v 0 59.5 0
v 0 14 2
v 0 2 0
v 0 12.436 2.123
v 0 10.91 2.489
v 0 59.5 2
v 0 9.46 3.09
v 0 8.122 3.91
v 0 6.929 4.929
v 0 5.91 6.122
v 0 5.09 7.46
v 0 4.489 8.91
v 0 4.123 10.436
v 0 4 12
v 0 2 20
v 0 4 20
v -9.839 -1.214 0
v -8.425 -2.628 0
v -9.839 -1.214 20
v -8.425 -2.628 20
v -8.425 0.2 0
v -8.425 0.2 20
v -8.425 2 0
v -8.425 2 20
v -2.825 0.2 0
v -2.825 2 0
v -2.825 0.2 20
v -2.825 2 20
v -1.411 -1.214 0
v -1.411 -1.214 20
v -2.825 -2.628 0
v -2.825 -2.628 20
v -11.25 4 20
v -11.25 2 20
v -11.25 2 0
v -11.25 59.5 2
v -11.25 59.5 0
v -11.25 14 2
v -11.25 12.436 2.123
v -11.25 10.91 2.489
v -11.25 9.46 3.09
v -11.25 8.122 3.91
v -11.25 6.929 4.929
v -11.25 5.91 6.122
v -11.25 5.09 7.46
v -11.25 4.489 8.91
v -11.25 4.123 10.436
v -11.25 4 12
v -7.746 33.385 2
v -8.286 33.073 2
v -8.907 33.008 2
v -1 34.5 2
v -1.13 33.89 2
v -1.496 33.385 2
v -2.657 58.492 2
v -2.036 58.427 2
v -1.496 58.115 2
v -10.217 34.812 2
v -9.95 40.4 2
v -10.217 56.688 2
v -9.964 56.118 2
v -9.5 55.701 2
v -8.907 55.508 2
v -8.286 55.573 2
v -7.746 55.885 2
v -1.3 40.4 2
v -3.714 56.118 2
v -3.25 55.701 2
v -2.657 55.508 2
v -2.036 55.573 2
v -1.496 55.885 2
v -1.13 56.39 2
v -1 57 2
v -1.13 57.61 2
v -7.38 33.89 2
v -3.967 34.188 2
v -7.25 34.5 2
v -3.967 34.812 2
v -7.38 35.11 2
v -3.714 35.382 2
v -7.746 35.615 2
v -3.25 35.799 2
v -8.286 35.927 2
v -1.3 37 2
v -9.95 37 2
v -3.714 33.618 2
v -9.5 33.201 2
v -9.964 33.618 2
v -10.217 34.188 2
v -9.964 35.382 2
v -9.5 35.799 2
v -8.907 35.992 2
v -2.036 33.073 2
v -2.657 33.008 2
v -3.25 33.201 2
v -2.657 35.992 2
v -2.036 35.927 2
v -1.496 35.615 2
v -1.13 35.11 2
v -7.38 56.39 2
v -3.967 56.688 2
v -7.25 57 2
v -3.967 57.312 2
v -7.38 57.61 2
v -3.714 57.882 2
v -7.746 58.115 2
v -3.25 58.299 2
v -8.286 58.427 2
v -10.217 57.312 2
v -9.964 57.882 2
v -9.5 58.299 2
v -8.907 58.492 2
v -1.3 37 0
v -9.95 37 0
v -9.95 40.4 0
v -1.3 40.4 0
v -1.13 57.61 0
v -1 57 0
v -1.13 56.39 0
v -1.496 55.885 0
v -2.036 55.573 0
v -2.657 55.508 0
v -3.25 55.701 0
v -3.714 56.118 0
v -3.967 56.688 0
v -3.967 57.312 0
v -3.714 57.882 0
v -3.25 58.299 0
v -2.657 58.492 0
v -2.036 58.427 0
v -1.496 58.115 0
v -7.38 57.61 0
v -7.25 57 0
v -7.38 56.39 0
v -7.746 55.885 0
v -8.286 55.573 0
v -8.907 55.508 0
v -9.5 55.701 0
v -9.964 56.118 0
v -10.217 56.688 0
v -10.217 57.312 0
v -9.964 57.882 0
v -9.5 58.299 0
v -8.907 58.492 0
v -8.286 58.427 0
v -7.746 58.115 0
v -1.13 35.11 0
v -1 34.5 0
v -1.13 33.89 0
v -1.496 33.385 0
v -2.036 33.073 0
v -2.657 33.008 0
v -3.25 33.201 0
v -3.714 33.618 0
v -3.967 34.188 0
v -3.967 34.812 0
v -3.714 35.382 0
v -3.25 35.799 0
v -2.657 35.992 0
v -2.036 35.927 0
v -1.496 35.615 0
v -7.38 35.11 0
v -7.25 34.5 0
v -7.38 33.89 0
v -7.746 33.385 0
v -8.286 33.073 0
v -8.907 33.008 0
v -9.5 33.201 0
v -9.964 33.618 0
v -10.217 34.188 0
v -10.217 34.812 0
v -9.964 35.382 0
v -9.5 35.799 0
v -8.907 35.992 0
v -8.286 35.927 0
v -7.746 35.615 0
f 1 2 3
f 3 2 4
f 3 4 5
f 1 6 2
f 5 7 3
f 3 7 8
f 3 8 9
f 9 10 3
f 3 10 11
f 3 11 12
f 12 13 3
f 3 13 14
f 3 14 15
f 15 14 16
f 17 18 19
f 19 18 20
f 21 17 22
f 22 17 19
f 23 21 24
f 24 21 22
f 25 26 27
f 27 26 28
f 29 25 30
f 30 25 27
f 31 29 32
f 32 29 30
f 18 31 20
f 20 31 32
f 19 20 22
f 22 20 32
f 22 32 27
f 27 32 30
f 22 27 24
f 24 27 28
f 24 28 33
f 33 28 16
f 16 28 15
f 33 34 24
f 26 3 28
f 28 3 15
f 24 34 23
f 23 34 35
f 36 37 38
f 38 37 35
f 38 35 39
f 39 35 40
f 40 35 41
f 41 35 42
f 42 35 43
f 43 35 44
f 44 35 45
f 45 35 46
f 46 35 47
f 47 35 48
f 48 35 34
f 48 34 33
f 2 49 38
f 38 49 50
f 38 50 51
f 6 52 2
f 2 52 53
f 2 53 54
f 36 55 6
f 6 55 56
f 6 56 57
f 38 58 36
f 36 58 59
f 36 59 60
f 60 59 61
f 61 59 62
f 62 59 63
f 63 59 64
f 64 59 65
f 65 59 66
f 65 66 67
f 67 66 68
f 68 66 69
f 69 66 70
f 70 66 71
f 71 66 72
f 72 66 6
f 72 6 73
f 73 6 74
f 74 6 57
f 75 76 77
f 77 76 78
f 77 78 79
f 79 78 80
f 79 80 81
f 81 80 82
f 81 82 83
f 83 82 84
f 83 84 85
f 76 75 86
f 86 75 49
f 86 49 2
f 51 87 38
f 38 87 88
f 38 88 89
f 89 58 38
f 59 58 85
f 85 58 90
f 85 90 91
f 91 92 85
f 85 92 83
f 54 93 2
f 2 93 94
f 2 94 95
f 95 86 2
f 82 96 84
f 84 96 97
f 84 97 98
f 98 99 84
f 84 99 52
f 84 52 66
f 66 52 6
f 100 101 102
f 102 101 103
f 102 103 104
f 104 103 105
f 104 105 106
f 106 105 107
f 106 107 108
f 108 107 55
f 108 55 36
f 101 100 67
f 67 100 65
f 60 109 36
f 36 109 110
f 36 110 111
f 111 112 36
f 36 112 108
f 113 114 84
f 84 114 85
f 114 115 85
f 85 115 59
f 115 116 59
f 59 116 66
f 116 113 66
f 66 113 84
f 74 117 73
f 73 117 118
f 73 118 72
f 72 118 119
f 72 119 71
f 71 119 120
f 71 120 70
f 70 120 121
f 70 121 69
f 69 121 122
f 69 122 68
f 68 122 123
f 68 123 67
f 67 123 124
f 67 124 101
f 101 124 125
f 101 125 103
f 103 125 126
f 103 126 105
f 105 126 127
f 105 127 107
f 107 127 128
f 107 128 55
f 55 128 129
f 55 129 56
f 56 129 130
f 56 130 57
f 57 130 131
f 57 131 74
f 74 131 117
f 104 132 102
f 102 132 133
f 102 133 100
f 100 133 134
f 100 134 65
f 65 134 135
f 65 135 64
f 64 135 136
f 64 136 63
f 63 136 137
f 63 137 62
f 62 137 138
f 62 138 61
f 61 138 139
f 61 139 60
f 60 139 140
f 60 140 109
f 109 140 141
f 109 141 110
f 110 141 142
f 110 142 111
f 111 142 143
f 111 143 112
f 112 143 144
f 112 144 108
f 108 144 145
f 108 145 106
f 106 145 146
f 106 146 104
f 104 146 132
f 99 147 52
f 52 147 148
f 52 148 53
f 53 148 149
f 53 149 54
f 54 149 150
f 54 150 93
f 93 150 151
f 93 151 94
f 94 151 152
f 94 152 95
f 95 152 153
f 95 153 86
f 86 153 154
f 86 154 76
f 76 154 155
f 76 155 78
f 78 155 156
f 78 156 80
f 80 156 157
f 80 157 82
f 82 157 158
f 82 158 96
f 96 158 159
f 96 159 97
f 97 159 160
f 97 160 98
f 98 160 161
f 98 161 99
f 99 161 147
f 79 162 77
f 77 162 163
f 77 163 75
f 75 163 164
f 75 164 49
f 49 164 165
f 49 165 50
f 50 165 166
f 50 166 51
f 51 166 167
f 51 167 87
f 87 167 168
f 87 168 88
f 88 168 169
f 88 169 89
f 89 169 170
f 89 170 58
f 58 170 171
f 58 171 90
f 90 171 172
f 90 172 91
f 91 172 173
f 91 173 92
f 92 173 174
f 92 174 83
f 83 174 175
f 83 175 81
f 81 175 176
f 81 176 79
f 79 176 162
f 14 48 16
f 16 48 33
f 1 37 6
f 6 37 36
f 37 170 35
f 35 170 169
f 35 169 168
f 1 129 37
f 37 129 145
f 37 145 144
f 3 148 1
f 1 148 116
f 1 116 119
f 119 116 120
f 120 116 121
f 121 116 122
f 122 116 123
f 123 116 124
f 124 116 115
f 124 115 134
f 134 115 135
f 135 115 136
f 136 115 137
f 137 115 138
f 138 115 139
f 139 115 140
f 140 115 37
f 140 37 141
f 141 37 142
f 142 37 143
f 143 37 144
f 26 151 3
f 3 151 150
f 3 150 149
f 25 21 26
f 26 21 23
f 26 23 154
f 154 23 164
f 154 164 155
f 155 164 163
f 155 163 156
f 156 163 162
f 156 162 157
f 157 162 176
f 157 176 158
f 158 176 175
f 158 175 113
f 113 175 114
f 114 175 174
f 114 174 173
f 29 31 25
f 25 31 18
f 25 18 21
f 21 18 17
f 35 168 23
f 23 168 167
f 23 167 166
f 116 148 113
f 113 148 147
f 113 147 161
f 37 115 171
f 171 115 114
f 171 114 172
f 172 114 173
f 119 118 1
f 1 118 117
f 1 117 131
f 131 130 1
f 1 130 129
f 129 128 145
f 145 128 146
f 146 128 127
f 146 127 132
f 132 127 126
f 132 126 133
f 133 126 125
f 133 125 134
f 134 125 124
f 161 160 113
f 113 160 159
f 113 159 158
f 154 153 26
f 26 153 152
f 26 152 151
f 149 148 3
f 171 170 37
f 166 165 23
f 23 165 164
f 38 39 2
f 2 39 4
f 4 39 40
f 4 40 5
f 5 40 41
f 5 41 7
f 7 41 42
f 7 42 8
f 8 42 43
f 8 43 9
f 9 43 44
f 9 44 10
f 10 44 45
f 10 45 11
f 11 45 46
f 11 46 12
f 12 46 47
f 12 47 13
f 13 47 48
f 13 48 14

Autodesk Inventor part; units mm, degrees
ref_plane "YZ Plane" through (0, 0, 0) normal (1, 0, 0) x (0, 1, 0)
ref_plane "XZ Plane" through (0, 0, 0) normal (0, 1, 0) x (-1, 0, 0)
ref_plane "XY Plane" through (0, 0, 0) normal (0, 0, 1) x (1, 0, 0)
sketch "Sketch1" plane through (0, 0, 0) normal (0, 0, 1) x (1, 0, 0)
  line L0 (-11.25, 59.5) -> (-8.75, 59.5) construction
  line L1 (-8.75, 59.5) -> (-8.75, 57) construction
  line L2 (-8.75, 57) -> (-11.25, 57) construction
  line L3 (-11.25, 57) -> (-11.25, 59.5) construction
  line L4 (0, 59.5) -> (-11.25, 59.5) construction
  circle A0 centre (-8.75, 57) radius 1.5
  line L5 (-8.75, 57) -> (-2.5, 57) construction
  line L6 (-2.5, 57) -> (-2.5, 34.5) construction
  line L7 (-2.5, 34.5) -> (-8.75, 34.5) construction
  line L8 (-8.75, 34.5) -> (-8.75, 57) construction
  circle A1 centre (-8.75, 34.5) radius 1.5
  circle A2 centre (-2.5, 34.5) radius 1.5
  circle A3 centre (-2.5, 57) radius 1.5
  line L9 (-11.25, 59.5) -> (0, 59.5)
  line L10 (0, 59.5) -> (0, 2)
  line L11 (0, 2) -> (-11.25, 2)
  line L12 (-11.25, 2) -> (-11.25, 59.5)
  line L13 (-9.95, 40.4) -> (0, 40.4) construction
  line L14 (-1.3, 40.4) -> (0, 40.4) construction
  line L15 (-9.95, 37) -> (0, 37) construction
  line L16 (-9.95, 40.4) -> (-1.3, 40.4)
  line L17 (-1.3, 40.4) -> (-1.3, 37)
  line L18 (-1.3, 37) -> (-9.95, 37)
  line L19 (-9.95, 37) -> (-9.95, 40.4)
  line L20 (0, 59.5) -> (-1.3, 59.5) construction
  line L21 (-1.3, 59.5) -> (-1.3, 40.4) construction
  line L22 (-1.3, 40.4) -> (0, 40.4) construction
  line L23 (0, 40.4) -> (0, 59.5) construction
  line L24 (0, 59.5) -> (-9.95, 59.5) construction
  line L25 (-9.95, 59.5) -> (-9.95, 37) construction
  line L26 (-9.95, 37) -> (0, 37) construction
  line L27 (0, 37) -> (0, 59.5) construction
  point P0 (0, 0)
  dimension "d0" = 2.5
  dimension "d1" = 2.5
  dimension "d2" = 3
  dimension "d3" = 6.25
  dimension "d4" = 22.5
  dimension "d5" = 3
  dimension "d6" = 3
  dimension "d7" = 3
  dimension "d8" = 11.25
  dimension "d9" = 57.5
  dimension "d10" = 9.95
  dimension "d11" = 1.3
extrude "Extrusion1" add sketch "Sketch1" along normal blind 2
sketch "Sketch2" plane through (0, 2, 0) normal (1, 0, 0) x (0, 0, -1)
  line L0 (0, 0) -> (0, 57.5) construction
  line L1 (0, 0) -> (18, 0) construction
  line L2 (18, 0) -> (18, -30) construction
  line L3 (18, 0) -> (48, 0) construction
  line L4 (18, -30) -> (18, -17) construction
  point P0 (0, -2)
  dimension "d14" = 18
  dimension "d15" = 30
  dimension "d16" = 90
  dimension "d17" = 13
sketch "Sketch7" plane through (0, 0, 0) normal (0, 0, -1) x (-1, 0, 0)
  line L0 (1.4108, -1.2142) -> (2.825, -2.6284)
  line L1 (2.825, 0.2) -> (1.4108, -1.2142)
  line L2 (2.825, 0.2) -> (2.825, 2)
  line L3 (5.625, 0.2) -> (5.625, 2) construction
  line L4 (2.825, -2.6284) -> (5.625, -2.6284)
  line L5 (5.625, 2) -> (5.625, -3) construction
  line L6 (8.425, -2.6284) -> (5.625, -2.6284)
  line L7 (8.425, 0.2) -> (5.625, 0.2) construction
  line L8 (8.425, 2) -> (8.425, 0.2) construction
  line L9 (8.425, 2) -> (8.425, 0.2)
  line L10 (8.425, 0.2) -> (9.8392, -1.2142)
  line L11 (9.8392, -1.2142) -> (8.425, -2.6284)
  line L12 (8.425, 0.2) -> (10.425, 0.2) construction
  line L13 (9.95, 37) -> (1.3, 37) projected
  line L14 (1.3, 37) -> (1.3, 40.4) projected
  line L15 (1.3, 40.4) -> (9.95, 40.4) projected
  line L16 (9.95, 40.4) -> (9.95, 37) projected
  circle A0 centre (2.5, 57) radius 1.5 projected
  circle A1 centre (8.75, 57) radius 1.5 projected
  circle A2 centre (2.5, 34.5) radius 1.5 projected
  circle A3 centre (8.75, 34.5) radius 1.5 projected
  line L17 (11.25, 59.5) -> (0, 59.5) projected
  line L18 (0, 59.5) -> (0, 2) projected
  line L19 (0, 2) -> (11.25, 2) projected
  line L20 (11.25, 2) -> (11.25, 59.5) projected
  line L21 (11.25, 2) -> (0, 2) construction
  line L22 (5.625, 2) -> (5.625, 3.9478) construction
  line L23 (2.825, 2) -> (8.425, 2)
  line L24 (2.825, 2) -> (8.425, 2)
  line L25 (8.425, 2) -> (8.425, 0.2)
  line L26 (8.425, 0.2) -> (2.825, 0.2)
  line L27 (2.825, 0.2) -> (2.825, 2)
  line L28 (0, 2) -> (11.25, 2)
  line L29 (11.25, 2) -> (11.25, 4)
  line L30 (11.25, 4) -> (0, 4)
  line L31 (0, 4) -> (0, 2)
  dimension "d24" = 5
  dimension "d25" = 2.8
  dimension "d26" = 1.8
  dimension "d28" = 1.8
  dimension "d29" = 2
  dimension "d30" = 45
  dimension "d31" = 2
  dimension "d37" = 2
extrude "Extrusion2" add sketch "Sketch7" against normal blind 20 contours L1 L26 L10 L11 L6 L4 L0 | L2 L19 L9 L26 | L19 L18 L30 L20
fillet "Fillet1" radius 10 1 edges at (-5.625, 4, 2)
properties part number "prox_base"
